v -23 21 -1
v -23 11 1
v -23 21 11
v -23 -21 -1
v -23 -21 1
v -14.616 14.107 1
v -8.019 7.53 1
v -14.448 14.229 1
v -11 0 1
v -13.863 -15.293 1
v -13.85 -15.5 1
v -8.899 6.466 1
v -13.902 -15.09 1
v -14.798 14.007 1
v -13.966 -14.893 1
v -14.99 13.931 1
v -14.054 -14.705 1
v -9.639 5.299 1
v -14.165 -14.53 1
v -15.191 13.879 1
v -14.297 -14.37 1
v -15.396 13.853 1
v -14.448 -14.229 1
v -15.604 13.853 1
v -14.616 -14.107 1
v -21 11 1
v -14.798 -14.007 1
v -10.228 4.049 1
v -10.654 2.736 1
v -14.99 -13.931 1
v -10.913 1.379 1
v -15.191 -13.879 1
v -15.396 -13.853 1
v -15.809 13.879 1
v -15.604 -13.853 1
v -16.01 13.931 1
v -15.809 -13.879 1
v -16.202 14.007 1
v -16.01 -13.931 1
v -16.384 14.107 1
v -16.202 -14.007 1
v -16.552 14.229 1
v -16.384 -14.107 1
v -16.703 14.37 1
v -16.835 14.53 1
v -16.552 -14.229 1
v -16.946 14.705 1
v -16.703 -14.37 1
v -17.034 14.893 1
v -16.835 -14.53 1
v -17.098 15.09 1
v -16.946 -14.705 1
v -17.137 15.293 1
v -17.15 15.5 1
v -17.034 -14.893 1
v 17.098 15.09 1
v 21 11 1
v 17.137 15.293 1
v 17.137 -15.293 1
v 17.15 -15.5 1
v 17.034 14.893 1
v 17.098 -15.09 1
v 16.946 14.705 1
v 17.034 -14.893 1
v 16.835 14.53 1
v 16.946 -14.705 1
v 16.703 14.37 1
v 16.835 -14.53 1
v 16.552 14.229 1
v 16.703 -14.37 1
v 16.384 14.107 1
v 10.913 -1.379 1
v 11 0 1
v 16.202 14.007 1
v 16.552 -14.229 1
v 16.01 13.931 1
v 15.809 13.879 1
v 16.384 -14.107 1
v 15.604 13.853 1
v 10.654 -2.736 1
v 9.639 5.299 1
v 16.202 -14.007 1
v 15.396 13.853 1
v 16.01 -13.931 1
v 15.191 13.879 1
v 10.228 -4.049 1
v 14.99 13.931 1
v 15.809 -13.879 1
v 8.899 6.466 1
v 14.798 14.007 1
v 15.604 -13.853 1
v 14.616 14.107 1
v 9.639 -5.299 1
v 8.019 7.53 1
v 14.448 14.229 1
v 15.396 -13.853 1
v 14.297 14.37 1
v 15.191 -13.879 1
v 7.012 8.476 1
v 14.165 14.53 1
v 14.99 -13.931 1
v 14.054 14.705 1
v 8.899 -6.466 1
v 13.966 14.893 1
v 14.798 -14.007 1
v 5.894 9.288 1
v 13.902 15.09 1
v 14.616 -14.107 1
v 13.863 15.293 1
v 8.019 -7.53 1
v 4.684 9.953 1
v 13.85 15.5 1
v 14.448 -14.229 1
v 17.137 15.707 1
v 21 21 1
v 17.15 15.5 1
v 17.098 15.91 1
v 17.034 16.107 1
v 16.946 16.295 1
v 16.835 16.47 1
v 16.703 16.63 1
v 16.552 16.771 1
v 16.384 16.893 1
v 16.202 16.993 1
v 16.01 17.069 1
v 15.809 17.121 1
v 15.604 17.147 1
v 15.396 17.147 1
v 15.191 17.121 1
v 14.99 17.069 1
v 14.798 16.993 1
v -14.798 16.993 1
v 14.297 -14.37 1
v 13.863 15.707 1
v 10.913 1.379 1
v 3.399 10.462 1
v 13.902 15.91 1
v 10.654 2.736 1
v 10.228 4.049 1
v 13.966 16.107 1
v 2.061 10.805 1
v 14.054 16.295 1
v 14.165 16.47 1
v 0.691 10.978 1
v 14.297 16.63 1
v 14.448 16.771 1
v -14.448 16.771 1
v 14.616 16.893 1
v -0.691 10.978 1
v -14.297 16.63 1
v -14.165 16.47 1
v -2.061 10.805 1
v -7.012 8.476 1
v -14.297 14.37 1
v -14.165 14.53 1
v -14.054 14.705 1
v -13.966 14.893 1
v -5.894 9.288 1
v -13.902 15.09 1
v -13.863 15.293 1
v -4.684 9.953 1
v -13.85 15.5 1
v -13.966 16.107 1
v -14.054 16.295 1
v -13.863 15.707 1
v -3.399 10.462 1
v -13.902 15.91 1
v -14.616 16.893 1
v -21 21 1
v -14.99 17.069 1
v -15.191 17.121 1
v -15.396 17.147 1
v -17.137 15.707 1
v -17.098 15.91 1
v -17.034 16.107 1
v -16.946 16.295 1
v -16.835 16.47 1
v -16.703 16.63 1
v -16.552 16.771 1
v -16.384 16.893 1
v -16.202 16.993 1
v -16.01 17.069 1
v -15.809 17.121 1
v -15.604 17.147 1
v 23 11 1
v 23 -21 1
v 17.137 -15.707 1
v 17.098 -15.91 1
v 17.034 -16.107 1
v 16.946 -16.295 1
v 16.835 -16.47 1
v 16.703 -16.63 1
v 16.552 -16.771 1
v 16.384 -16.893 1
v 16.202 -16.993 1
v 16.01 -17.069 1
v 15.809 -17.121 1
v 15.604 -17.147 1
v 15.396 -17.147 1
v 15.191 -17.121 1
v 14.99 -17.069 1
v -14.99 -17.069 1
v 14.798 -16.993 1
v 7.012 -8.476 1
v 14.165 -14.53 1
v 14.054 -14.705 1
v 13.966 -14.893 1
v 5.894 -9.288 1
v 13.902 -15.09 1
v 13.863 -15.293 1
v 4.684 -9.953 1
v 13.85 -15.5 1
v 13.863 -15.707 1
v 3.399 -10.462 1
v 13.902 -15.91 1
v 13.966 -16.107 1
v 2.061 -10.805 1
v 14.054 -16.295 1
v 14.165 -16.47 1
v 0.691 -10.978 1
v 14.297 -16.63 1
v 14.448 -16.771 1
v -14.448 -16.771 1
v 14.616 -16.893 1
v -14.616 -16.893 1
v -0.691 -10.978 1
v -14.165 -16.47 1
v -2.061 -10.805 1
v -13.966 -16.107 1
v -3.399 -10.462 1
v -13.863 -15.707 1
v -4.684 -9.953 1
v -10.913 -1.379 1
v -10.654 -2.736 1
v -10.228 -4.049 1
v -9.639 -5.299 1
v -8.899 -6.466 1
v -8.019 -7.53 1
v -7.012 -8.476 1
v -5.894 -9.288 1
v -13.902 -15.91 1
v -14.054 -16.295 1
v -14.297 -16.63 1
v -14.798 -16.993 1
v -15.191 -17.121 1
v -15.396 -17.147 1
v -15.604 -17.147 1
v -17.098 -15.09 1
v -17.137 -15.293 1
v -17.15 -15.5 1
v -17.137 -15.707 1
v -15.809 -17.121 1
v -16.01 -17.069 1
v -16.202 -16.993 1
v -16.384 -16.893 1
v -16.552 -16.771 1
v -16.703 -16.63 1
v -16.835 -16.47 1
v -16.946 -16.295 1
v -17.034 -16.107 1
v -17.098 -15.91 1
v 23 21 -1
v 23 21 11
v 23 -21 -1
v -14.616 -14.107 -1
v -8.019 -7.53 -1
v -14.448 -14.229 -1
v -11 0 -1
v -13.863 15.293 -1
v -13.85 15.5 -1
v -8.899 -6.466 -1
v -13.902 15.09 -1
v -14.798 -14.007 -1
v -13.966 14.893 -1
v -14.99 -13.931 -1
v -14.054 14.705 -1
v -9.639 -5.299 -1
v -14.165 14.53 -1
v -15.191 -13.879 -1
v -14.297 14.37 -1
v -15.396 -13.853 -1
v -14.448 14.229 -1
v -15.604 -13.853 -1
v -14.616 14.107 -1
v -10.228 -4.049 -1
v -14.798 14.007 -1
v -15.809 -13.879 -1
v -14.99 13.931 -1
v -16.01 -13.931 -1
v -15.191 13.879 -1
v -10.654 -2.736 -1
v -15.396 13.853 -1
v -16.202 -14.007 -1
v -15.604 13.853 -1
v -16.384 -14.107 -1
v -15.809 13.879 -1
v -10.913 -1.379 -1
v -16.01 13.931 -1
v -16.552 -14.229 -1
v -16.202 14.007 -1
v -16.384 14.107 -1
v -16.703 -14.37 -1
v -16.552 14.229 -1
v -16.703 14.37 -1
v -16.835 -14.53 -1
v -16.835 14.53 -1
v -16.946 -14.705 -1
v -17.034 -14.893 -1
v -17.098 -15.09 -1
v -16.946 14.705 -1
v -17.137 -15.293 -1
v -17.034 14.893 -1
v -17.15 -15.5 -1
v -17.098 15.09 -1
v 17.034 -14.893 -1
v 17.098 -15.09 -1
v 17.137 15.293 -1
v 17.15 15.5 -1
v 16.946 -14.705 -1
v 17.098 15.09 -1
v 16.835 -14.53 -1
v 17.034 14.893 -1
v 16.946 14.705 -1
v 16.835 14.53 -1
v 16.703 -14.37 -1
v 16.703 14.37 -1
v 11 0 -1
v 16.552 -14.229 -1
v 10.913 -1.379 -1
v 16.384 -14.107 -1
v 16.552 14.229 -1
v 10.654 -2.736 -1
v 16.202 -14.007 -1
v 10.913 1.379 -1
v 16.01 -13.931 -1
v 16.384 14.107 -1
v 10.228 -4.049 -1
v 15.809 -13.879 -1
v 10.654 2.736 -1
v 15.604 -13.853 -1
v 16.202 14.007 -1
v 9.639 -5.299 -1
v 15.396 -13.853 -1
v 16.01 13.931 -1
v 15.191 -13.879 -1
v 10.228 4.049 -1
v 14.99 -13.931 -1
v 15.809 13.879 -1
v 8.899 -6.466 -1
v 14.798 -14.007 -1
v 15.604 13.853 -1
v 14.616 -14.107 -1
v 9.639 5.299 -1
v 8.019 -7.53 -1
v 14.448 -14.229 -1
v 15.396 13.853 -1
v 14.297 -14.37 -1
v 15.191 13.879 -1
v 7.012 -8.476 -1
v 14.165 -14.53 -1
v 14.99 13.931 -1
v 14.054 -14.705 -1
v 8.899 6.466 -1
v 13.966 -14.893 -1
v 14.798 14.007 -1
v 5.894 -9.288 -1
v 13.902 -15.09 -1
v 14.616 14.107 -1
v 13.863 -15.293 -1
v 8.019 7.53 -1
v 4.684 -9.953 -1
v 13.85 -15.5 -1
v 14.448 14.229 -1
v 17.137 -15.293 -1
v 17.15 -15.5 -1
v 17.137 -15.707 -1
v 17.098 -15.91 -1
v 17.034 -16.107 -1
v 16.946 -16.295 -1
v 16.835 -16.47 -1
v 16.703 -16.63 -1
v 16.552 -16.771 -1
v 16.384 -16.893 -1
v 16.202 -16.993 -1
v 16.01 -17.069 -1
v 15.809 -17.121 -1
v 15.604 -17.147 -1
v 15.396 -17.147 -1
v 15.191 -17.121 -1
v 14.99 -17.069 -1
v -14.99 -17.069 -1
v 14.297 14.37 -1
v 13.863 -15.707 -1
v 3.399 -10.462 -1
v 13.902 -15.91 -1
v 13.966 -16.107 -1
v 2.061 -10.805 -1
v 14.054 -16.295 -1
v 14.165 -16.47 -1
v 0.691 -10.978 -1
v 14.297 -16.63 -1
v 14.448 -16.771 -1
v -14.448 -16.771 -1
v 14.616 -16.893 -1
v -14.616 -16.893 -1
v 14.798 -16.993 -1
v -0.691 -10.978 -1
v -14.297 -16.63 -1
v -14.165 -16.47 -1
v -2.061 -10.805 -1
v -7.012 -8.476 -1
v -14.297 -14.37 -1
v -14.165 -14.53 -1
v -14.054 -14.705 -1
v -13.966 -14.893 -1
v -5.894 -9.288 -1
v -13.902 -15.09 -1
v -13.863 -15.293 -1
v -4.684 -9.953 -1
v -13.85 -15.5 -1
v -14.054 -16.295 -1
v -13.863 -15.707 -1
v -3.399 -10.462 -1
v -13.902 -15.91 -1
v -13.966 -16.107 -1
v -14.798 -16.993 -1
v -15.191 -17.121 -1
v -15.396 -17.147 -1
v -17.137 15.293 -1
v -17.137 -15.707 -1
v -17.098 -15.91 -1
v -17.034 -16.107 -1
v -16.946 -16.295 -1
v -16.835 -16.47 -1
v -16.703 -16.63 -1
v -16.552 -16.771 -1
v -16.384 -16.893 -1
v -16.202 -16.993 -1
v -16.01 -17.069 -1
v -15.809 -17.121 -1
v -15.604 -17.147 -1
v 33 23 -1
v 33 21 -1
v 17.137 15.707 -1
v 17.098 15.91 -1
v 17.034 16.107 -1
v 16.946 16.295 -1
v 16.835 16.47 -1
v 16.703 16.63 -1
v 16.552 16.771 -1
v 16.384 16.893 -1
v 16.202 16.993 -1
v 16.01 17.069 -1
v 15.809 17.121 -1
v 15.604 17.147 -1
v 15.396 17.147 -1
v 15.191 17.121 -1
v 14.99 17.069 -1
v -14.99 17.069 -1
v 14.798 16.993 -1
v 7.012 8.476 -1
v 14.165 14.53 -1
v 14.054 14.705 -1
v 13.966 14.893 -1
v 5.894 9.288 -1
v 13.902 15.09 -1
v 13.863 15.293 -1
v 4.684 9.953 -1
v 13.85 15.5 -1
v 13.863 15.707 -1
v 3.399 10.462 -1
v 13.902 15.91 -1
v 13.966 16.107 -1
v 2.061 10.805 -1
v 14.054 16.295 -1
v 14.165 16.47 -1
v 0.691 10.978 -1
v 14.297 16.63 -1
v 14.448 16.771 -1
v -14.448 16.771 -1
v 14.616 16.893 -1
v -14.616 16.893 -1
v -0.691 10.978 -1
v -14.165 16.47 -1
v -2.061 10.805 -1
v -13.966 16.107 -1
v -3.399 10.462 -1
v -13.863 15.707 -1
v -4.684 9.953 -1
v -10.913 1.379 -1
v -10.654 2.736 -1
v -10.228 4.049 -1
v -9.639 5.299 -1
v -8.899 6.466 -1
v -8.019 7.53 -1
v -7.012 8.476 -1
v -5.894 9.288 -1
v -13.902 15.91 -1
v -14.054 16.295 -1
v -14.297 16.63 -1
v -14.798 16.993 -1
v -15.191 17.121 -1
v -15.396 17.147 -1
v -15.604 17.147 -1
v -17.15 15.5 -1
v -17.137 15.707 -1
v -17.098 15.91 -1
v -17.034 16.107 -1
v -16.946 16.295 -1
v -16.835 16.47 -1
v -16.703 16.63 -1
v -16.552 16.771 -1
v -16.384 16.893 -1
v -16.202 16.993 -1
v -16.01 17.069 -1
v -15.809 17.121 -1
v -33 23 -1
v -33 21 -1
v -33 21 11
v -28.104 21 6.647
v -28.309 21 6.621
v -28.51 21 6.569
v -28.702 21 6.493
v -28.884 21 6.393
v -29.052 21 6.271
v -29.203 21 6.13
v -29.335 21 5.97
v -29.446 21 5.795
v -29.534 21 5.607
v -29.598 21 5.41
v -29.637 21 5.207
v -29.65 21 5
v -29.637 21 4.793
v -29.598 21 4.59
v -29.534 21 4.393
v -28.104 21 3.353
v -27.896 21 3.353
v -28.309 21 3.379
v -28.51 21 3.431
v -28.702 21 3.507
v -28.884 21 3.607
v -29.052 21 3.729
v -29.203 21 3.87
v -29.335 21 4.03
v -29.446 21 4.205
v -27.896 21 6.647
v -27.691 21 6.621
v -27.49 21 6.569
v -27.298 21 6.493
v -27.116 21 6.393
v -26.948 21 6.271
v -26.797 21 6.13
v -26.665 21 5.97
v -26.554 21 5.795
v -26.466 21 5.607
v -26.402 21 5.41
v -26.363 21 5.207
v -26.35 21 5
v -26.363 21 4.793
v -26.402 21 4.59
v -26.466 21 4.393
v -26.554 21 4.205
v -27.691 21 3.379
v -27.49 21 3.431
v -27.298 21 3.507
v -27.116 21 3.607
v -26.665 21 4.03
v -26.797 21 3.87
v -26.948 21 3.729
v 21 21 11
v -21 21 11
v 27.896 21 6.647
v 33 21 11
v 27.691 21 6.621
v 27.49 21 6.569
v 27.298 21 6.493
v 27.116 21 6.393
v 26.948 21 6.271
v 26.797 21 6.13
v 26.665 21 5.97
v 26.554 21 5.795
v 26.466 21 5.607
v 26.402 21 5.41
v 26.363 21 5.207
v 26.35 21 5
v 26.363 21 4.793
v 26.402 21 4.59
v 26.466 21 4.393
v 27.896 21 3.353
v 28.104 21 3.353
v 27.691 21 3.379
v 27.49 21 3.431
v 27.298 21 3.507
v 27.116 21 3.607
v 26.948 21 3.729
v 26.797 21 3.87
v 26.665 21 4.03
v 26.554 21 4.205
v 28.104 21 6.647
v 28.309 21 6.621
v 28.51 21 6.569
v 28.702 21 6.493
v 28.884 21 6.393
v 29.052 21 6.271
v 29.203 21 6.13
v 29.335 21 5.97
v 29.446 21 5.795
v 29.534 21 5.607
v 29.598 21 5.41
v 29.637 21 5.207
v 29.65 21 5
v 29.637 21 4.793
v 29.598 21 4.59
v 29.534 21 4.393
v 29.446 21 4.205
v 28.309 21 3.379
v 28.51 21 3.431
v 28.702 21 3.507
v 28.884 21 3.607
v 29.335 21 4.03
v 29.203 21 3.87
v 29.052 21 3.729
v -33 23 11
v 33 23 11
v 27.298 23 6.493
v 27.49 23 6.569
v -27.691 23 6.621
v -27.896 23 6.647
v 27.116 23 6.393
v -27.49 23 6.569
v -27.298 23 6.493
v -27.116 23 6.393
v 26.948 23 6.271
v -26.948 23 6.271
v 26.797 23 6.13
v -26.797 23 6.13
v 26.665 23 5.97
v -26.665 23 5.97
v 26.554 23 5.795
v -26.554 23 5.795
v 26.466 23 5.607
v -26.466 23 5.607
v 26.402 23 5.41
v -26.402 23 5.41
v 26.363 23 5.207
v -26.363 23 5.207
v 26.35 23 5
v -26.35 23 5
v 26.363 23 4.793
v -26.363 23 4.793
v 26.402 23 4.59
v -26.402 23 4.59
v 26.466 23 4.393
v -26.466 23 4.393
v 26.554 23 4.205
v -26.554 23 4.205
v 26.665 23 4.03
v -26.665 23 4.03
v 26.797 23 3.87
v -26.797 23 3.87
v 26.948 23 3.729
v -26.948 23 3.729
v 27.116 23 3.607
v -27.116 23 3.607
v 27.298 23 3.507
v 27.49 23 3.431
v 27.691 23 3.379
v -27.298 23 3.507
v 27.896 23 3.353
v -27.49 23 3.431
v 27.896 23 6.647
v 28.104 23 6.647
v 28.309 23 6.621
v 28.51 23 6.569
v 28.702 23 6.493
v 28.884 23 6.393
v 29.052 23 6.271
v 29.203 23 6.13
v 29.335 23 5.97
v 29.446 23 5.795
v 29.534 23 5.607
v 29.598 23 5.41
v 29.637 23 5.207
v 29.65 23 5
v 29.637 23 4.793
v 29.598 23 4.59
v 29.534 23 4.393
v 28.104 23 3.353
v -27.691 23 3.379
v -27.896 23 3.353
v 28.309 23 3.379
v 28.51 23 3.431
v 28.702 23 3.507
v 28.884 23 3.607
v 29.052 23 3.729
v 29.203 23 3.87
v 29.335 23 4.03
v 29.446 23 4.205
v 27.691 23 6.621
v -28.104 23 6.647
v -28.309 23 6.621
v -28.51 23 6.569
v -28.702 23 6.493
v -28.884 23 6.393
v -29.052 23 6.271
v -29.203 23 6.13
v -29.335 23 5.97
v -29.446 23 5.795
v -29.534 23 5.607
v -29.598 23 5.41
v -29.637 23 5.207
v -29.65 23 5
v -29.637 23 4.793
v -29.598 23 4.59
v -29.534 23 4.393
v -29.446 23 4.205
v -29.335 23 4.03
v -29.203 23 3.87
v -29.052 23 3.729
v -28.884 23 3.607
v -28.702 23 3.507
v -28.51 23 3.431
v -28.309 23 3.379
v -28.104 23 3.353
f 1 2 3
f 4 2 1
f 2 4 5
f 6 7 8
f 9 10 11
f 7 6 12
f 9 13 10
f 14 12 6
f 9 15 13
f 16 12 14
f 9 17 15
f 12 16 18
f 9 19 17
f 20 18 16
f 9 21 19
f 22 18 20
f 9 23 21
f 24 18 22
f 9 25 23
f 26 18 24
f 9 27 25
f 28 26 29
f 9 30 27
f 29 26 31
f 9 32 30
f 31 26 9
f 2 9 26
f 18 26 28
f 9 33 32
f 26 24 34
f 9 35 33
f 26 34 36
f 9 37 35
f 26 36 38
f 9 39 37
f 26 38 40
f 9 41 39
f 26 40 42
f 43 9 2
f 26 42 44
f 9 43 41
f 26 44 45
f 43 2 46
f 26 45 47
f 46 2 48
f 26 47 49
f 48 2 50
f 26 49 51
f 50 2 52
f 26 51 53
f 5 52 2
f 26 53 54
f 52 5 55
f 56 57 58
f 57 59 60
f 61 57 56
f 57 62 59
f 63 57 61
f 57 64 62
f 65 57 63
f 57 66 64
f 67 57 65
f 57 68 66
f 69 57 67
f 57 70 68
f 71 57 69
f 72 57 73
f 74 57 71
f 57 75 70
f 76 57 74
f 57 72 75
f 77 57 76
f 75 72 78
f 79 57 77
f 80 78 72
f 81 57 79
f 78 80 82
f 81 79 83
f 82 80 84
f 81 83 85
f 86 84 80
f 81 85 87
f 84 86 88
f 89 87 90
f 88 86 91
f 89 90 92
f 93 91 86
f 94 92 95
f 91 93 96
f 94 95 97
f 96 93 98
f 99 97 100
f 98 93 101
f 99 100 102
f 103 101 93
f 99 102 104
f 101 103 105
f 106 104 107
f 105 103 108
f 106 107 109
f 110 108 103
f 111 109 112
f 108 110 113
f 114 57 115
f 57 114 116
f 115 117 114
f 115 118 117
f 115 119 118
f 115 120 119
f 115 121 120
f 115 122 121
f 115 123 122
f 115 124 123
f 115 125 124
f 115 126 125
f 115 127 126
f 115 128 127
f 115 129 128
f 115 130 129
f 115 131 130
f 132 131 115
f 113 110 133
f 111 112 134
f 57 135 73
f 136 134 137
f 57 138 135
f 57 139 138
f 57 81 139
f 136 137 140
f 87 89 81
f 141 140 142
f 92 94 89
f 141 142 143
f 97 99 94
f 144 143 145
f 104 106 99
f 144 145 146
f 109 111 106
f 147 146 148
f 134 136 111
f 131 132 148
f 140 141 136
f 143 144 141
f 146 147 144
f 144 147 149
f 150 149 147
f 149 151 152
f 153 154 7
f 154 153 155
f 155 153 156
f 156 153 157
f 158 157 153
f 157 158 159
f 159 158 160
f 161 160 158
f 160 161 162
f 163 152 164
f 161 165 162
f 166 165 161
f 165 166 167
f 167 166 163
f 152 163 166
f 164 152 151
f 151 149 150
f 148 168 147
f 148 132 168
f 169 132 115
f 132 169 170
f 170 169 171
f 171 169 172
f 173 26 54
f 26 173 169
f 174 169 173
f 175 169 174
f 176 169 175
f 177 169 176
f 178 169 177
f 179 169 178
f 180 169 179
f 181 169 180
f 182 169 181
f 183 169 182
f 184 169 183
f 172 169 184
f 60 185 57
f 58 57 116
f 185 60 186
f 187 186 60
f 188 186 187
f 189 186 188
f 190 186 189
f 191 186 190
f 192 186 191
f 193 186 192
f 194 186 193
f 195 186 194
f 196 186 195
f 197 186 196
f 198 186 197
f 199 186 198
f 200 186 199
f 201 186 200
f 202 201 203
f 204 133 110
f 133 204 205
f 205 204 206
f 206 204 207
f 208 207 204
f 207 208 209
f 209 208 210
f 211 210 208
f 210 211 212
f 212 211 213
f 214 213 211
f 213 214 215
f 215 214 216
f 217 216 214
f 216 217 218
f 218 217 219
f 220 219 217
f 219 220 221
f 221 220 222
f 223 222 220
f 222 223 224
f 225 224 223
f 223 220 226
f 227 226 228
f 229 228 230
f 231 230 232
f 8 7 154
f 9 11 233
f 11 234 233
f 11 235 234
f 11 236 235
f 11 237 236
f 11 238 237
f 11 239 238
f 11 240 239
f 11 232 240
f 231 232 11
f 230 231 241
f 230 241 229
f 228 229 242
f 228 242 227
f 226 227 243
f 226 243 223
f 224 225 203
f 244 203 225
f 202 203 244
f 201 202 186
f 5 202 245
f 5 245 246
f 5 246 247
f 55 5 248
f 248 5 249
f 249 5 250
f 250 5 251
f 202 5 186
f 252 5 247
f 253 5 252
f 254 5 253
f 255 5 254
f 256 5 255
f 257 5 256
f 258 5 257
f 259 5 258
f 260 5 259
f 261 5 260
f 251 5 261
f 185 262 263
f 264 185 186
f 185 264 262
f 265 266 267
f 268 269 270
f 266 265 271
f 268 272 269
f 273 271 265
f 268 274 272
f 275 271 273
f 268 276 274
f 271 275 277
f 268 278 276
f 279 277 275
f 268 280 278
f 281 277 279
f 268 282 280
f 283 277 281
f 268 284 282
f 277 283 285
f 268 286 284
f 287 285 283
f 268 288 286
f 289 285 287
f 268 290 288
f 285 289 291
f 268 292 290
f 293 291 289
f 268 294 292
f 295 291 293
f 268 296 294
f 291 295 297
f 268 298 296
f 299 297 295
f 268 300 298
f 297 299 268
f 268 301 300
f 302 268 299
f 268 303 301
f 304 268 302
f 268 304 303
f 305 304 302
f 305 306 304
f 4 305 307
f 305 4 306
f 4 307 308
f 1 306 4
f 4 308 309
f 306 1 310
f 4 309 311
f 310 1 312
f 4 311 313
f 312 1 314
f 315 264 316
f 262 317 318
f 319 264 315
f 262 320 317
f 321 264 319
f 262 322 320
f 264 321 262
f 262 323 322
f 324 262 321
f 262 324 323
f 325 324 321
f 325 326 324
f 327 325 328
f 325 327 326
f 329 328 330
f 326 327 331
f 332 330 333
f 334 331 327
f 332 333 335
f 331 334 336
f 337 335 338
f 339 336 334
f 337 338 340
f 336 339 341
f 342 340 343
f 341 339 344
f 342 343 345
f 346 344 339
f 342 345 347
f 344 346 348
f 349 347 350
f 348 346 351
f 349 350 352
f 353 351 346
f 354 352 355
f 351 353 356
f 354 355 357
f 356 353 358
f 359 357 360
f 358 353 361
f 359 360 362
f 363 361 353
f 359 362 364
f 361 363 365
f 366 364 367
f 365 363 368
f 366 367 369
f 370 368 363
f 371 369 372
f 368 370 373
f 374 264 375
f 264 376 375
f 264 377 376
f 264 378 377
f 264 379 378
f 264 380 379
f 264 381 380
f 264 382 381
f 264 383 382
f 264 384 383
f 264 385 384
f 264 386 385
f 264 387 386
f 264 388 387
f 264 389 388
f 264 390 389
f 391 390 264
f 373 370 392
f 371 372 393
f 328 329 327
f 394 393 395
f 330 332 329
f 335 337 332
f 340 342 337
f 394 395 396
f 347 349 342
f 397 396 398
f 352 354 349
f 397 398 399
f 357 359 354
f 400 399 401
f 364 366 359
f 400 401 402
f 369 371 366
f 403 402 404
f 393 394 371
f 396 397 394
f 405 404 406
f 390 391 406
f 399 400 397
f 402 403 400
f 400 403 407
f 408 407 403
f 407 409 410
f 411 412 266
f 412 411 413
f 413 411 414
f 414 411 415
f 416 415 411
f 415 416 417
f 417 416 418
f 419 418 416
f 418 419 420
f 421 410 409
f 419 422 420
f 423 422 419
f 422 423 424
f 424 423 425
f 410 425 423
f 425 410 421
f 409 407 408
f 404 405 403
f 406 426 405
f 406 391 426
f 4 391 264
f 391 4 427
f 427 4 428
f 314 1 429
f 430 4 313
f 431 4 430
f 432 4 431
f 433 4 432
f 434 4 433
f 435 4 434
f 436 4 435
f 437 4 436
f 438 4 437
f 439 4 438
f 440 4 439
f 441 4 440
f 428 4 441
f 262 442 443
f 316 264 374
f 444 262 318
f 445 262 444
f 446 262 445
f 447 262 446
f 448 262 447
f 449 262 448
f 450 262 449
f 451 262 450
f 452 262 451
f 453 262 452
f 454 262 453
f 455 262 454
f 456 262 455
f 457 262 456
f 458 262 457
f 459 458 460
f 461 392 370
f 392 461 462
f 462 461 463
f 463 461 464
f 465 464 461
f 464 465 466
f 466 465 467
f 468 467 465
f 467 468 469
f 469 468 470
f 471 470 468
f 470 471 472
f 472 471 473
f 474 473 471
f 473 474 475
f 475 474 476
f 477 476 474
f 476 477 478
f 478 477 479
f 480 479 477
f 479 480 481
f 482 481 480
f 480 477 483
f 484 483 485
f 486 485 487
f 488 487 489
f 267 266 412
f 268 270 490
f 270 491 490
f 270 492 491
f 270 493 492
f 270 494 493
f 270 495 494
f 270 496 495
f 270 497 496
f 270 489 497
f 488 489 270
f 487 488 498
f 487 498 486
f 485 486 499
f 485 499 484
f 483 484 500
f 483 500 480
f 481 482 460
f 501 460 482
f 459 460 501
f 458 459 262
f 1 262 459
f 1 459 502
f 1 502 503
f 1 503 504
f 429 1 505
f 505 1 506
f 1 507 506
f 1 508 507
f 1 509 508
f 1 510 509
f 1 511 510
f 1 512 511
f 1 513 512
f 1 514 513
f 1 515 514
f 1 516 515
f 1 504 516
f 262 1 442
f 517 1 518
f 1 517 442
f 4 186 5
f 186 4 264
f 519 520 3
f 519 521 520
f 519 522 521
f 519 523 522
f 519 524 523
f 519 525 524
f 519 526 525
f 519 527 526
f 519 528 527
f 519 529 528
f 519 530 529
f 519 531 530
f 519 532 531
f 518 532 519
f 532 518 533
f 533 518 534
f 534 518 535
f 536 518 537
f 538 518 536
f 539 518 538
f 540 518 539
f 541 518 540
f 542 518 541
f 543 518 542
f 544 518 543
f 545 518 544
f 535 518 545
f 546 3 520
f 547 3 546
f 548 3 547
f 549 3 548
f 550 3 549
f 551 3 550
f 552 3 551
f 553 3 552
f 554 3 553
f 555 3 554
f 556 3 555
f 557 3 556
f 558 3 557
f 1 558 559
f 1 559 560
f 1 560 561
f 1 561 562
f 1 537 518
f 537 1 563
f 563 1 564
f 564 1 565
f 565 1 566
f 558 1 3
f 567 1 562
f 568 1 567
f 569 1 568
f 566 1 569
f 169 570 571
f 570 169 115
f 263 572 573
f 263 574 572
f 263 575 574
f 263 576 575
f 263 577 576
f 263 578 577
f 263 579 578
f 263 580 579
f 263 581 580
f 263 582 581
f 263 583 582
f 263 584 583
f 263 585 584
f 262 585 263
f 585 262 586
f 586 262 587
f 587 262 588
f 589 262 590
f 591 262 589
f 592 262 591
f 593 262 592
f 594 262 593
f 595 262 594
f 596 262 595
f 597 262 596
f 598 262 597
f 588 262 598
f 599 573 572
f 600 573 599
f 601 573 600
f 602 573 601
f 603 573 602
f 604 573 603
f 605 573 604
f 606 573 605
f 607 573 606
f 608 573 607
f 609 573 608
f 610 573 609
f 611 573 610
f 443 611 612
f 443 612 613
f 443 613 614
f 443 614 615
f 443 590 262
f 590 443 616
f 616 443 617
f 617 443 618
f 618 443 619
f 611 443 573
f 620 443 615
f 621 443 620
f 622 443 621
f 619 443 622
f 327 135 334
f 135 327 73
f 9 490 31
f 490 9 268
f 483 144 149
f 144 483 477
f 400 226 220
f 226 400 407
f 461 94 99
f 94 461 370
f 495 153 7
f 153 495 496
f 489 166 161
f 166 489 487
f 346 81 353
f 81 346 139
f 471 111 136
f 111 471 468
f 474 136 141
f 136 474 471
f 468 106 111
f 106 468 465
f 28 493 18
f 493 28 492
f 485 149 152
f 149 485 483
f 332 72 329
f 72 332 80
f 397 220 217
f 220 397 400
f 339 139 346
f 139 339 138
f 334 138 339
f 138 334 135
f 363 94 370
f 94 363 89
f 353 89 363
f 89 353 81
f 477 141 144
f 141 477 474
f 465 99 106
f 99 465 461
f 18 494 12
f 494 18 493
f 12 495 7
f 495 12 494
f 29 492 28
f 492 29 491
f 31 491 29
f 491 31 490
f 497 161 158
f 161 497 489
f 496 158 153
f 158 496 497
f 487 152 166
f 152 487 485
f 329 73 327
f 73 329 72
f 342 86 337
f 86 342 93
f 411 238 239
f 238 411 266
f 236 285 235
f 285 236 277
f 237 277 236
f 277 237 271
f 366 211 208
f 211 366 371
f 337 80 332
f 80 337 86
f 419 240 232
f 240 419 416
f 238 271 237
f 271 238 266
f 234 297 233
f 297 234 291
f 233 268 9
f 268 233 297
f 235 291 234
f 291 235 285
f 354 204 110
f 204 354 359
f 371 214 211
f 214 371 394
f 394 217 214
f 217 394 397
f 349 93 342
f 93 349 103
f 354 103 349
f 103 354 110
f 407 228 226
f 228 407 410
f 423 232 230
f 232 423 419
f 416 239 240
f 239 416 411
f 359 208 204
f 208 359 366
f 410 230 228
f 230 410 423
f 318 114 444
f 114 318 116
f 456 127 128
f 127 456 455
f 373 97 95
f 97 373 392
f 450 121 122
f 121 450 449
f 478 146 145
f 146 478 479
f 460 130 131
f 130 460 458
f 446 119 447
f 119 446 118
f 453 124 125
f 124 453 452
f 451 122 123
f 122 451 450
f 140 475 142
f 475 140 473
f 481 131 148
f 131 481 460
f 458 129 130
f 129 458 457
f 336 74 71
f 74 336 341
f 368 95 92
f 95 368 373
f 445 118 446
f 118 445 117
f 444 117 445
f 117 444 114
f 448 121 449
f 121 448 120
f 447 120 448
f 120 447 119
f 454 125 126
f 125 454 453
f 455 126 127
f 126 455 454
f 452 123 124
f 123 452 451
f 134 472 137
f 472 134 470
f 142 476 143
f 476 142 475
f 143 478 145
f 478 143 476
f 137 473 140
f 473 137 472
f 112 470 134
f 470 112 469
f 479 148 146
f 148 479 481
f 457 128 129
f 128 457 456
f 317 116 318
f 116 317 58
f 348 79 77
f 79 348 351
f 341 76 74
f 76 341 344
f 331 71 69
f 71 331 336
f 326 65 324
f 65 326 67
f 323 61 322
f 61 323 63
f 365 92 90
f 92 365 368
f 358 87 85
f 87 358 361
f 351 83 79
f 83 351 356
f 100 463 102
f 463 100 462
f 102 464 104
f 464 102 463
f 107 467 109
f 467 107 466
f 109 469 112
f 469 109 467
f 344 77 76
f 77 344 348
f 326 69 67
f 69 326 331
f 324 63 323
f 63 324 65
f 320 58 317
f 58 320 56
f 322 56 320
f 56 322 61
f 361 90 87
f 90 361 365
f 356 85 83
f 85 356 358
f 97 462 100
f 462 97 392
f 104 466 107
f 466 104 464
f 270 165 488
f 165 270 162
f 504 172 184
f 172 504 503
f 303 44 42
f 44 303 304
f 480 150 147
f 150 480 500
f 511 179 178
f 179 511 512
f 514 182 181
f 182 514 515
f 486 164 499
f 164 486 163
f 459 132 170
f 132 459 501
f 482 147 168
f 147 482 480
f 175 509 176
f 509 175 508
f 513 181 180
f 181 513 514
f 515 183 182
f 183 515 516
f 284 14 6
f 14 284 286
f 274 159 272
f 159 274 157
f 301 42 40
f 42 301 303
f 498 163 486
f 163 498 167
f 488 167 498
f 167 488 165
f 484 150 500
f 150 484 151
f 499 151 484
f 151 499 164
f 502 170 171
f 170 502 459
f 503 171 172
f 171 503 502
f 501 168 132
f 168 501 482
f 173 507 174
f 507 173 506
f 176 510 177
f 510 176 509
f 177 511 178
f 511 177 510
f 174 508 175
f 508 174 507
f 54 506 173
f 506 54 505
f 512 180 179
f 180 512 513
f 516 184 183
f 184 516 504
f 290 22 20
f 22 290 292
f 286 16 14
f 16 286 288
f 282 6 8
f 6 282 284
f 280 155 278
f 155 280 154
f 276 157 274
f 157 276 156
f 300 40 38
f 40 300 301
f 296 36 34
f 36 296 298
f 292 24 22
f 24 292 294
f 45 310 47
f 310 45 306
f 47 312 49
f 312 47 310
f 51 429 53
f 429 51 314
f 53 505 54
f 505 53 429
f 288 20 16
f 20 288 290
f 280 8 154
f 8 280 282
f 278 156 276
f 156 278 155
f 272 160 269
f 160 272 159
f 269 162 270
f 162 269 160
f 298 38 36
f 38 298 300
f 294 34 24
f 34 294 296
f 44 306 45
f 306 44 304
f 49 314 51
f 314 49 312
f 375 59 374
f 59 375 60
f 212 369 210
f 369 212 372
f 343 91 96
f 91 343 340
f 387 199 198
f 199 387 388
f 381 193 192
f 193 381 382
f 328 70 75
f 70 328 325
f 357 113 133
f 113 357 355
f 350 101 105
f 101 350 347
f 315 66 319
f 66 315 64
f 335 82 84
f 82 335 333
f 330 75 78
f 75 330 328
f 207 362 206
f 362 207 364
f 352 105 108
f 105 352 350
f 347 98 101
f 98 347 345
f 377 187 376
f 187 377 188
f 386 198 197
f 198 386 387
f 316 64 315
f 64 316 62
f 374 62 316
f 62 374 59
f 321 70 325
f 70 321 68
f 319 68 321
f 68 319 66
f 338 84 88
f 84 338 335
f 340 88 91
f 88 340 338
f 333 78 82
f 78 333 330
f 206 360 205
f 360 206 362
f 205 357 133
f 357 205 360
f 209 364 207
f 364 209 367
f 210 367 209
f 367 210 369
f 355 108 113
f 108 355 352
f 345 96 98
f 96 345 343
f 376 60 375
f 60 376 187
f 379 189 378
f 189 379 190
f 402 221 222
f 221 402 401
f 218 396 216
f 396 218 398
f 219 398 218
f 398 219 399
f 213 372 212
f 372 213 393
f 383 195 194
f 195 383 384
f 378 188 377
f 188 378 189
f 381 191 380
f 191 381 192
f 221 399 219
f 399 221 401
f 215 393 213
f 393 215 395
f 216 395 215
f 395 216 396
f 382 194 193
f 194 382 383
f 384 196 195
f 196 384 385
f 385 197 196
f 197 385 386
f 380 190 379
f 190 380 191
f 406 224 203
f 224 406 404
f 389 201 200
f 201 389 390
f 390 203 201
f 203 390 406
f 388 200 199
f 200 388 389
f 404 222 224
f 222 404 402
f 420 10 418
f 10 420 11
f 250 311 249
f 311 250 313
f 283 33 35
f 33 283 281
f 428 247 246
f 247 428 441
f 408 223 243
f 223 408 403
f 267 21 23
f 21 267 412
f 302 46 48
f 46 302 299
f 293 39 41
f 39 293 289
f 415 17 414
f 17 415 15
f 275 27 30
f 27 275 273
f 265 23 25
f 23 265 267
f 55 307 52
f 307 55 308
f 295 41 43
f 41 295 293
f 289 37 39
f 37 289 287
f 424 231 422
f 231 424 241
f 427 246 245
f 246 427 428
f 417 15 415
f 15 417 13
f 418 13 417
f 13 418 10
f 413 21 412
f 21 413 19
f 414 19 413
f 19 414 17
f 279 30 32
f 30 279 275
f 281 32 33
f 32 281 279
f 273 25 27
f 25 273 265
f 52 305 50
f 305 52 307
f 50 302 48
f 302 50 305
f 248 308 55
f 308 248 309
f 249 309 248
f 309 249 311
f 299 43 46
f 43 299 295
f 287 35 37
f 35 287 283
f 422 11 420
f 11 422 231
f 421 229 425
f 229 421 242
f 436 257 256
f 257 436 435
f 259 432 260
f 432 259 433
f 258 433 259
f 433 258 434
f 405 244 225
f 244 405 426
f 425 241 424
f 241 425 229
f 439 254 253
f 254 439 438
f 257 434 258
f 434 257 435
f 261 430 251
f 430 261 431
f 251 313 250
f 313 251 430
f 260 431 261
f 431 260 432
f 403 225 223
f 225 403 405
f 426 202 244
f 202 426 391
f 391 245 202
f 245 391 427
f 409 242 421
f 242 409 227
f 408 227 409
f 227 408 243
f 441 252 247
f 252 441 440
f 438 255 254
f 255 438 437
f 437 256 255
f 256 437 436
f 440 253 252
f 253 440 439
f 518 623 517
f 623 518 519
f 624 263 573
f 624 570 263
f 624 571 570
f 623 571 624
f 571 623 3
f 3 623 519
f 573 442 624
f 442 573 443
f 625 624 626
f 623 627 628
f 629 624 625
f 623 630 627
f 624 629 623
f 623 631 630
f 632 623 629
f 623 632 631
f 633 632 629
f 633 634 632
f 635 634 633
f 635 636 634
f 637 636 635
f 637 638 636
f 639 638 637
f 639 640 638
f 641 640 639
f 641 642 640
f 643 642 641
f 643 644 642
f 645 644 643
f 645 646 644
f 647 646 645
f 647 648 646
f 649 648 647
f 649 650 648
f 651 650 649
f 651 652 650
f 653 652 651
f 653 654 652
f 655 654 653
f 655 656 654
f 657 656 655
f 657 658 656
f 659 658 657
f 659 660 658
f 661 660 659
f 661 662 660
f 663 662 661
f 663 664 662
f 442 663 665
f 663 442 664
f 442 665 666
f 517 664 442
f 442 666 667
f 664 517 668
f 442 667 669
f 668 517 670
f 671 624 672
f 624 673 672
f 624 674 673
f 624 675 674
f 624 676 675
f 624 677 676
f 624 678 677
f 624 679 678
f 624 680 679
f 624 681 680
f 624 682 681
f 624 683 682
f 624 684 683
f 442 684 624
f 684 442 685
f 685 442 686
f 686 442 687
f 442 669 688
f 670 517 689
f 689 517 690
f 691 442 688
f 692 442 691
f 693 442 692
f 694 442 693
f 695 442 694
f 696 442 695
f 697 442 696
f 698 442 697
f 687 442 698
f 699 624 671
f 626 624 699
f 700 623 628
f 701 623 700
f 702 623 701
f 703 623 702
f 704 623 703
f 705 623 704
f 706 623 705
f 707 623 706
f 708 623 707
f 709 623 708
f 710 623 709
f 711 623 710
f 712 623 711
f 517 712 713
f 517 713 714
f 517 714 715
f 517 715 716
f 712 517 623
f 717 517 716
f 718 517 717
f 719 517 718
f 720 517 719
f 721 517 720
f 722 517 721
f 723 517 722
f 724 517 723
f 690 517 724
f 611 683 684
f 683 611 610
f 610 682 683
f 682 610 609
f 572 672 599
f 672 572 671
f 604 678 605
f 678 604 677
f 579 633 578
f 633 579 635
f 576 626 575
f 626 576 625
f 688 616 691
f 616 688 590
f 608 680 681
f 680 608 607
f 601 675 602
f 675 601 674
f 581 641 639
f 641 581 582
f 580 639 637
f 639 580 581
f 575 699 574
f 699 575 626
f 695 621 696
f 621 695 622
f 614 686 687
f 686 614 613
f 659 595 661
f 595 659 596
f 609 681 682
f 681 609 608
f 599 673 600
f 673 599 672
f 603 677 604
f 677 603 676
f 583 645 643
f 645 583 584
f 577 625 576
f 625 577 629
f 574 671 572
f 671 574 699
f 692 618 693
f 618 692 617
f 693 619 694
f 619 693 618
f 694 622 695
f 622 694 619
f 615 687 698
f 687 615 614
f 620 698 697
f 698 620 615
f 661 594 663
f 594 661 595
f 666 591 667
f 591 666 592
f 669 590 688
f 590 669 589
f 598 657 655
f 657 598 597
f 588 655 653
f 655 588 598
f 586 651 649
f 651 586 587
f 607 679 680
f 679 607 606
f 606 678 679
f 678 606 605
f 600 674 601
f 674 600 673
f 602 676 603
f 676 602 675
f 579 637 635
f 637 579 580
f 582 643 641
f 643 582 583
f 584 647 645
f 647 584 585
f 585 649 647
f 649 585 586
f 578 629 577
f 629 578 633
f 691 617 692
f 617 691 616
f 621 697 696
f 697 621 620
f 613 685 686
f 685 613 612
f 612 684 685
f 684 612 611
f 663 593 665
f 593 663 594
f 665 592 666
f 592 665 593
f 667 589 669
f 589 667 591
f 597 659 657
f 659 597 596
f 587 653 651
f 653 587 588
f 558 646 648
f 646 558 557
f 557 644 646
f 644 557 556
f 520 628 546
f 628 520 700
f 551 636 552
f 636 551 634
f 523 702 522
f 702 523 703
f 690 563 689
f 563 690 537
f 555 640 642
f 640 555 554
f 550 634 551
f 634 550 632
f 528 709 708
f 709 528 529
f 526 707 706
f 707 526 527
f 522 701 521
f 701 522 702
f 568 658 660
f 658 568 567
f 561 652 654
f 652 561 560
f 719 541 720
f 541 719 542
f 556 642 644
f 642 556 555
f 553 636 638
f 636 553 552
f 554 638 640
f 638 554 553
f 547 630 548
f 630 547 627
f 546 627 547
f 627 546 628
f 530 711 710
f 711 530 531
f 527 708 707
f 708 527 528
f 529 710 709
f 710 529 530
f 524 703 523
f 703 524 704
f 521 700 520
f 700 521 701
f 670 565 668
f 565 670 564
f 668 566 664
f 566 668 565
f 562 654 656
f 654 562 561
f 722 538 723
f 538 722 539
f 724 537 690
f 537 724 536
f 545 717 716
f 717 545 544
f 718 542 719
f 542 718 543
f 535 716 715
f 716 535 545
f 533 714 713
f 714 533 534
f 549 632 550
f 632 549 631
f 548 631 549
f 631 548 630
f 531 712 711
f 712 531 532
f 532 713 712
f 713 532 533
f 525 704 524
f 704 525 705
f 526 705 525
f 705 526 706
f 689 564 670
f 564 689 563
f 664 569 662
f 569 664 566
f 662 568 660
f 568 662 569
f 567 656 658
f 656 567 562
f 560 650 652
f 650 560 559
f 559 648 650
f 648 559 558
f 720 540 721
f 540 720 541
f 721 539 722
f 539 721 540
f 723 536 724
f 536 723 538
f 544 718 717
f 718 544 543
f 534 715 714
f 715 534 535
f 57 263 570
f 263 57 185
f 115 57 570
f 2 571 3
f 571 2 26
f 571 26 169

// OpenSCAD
// file: strengthening_rib.scad
//Strenthening rib

//By Mark Benson 2015
//CCNC

//Side strengthening rib
module strengtheningRib()
{
polyhedron(
  points=[ [0,0,0],[2,0,0],[2,10,0],[0,10,0],[0,10,10],[2,10,10]  ],
  faces=[ [0,1,3],[1,2,3],[0,3,4],[0,4,1],[1,4,5],[1,5,2],[2,5,4],[2,4,3] ]
 );
}
// main file
// Polargraph NEMA17 motor mounts
// CCNC 2016
// Copyright Mark Benson

include<strengthening_rib.scad> //strengtheningRib();

difference()
{
    cube([46,42,2],center=true);
    
    translate([0,0,-2])
    cylinder(r=22/2,h=4,$fn=50);
    
    translate([31/2,31/2,-2])
    cylinder(r=3.3/2,h=4,$fn=50);

    translate([-31/2,31/2,-2])
    cylinder(r=3.3/2,h=4,$fn=50);

    translate([31/2,-31/2,-2])
    cylinder(r=3.3/2,h=4,$fn=50);

    translate([-31/2,-31/2,-2])
    cylinder(r=3.3/2,h=4,$fn=50);    
}


difference()
{
    translate([0,42/2+1,5])
    cube([66,2,12],center=true);

    translate([46/2+5,42/2+3,5])
    rotate ([90,0,0])
    cylinder(r=3.3/2,h=4,$fn=50);

    translate([-46/2-5,42/2+3,5])
    rotate ([90,0,0])
    cylinder(r=3.3/2,h=4,$fn=50);    
}



translate([42/2,42/2-10,1])
strengtheningRib();

translate([-42/2-2,42/2-10,1])
strengtheningRib();
